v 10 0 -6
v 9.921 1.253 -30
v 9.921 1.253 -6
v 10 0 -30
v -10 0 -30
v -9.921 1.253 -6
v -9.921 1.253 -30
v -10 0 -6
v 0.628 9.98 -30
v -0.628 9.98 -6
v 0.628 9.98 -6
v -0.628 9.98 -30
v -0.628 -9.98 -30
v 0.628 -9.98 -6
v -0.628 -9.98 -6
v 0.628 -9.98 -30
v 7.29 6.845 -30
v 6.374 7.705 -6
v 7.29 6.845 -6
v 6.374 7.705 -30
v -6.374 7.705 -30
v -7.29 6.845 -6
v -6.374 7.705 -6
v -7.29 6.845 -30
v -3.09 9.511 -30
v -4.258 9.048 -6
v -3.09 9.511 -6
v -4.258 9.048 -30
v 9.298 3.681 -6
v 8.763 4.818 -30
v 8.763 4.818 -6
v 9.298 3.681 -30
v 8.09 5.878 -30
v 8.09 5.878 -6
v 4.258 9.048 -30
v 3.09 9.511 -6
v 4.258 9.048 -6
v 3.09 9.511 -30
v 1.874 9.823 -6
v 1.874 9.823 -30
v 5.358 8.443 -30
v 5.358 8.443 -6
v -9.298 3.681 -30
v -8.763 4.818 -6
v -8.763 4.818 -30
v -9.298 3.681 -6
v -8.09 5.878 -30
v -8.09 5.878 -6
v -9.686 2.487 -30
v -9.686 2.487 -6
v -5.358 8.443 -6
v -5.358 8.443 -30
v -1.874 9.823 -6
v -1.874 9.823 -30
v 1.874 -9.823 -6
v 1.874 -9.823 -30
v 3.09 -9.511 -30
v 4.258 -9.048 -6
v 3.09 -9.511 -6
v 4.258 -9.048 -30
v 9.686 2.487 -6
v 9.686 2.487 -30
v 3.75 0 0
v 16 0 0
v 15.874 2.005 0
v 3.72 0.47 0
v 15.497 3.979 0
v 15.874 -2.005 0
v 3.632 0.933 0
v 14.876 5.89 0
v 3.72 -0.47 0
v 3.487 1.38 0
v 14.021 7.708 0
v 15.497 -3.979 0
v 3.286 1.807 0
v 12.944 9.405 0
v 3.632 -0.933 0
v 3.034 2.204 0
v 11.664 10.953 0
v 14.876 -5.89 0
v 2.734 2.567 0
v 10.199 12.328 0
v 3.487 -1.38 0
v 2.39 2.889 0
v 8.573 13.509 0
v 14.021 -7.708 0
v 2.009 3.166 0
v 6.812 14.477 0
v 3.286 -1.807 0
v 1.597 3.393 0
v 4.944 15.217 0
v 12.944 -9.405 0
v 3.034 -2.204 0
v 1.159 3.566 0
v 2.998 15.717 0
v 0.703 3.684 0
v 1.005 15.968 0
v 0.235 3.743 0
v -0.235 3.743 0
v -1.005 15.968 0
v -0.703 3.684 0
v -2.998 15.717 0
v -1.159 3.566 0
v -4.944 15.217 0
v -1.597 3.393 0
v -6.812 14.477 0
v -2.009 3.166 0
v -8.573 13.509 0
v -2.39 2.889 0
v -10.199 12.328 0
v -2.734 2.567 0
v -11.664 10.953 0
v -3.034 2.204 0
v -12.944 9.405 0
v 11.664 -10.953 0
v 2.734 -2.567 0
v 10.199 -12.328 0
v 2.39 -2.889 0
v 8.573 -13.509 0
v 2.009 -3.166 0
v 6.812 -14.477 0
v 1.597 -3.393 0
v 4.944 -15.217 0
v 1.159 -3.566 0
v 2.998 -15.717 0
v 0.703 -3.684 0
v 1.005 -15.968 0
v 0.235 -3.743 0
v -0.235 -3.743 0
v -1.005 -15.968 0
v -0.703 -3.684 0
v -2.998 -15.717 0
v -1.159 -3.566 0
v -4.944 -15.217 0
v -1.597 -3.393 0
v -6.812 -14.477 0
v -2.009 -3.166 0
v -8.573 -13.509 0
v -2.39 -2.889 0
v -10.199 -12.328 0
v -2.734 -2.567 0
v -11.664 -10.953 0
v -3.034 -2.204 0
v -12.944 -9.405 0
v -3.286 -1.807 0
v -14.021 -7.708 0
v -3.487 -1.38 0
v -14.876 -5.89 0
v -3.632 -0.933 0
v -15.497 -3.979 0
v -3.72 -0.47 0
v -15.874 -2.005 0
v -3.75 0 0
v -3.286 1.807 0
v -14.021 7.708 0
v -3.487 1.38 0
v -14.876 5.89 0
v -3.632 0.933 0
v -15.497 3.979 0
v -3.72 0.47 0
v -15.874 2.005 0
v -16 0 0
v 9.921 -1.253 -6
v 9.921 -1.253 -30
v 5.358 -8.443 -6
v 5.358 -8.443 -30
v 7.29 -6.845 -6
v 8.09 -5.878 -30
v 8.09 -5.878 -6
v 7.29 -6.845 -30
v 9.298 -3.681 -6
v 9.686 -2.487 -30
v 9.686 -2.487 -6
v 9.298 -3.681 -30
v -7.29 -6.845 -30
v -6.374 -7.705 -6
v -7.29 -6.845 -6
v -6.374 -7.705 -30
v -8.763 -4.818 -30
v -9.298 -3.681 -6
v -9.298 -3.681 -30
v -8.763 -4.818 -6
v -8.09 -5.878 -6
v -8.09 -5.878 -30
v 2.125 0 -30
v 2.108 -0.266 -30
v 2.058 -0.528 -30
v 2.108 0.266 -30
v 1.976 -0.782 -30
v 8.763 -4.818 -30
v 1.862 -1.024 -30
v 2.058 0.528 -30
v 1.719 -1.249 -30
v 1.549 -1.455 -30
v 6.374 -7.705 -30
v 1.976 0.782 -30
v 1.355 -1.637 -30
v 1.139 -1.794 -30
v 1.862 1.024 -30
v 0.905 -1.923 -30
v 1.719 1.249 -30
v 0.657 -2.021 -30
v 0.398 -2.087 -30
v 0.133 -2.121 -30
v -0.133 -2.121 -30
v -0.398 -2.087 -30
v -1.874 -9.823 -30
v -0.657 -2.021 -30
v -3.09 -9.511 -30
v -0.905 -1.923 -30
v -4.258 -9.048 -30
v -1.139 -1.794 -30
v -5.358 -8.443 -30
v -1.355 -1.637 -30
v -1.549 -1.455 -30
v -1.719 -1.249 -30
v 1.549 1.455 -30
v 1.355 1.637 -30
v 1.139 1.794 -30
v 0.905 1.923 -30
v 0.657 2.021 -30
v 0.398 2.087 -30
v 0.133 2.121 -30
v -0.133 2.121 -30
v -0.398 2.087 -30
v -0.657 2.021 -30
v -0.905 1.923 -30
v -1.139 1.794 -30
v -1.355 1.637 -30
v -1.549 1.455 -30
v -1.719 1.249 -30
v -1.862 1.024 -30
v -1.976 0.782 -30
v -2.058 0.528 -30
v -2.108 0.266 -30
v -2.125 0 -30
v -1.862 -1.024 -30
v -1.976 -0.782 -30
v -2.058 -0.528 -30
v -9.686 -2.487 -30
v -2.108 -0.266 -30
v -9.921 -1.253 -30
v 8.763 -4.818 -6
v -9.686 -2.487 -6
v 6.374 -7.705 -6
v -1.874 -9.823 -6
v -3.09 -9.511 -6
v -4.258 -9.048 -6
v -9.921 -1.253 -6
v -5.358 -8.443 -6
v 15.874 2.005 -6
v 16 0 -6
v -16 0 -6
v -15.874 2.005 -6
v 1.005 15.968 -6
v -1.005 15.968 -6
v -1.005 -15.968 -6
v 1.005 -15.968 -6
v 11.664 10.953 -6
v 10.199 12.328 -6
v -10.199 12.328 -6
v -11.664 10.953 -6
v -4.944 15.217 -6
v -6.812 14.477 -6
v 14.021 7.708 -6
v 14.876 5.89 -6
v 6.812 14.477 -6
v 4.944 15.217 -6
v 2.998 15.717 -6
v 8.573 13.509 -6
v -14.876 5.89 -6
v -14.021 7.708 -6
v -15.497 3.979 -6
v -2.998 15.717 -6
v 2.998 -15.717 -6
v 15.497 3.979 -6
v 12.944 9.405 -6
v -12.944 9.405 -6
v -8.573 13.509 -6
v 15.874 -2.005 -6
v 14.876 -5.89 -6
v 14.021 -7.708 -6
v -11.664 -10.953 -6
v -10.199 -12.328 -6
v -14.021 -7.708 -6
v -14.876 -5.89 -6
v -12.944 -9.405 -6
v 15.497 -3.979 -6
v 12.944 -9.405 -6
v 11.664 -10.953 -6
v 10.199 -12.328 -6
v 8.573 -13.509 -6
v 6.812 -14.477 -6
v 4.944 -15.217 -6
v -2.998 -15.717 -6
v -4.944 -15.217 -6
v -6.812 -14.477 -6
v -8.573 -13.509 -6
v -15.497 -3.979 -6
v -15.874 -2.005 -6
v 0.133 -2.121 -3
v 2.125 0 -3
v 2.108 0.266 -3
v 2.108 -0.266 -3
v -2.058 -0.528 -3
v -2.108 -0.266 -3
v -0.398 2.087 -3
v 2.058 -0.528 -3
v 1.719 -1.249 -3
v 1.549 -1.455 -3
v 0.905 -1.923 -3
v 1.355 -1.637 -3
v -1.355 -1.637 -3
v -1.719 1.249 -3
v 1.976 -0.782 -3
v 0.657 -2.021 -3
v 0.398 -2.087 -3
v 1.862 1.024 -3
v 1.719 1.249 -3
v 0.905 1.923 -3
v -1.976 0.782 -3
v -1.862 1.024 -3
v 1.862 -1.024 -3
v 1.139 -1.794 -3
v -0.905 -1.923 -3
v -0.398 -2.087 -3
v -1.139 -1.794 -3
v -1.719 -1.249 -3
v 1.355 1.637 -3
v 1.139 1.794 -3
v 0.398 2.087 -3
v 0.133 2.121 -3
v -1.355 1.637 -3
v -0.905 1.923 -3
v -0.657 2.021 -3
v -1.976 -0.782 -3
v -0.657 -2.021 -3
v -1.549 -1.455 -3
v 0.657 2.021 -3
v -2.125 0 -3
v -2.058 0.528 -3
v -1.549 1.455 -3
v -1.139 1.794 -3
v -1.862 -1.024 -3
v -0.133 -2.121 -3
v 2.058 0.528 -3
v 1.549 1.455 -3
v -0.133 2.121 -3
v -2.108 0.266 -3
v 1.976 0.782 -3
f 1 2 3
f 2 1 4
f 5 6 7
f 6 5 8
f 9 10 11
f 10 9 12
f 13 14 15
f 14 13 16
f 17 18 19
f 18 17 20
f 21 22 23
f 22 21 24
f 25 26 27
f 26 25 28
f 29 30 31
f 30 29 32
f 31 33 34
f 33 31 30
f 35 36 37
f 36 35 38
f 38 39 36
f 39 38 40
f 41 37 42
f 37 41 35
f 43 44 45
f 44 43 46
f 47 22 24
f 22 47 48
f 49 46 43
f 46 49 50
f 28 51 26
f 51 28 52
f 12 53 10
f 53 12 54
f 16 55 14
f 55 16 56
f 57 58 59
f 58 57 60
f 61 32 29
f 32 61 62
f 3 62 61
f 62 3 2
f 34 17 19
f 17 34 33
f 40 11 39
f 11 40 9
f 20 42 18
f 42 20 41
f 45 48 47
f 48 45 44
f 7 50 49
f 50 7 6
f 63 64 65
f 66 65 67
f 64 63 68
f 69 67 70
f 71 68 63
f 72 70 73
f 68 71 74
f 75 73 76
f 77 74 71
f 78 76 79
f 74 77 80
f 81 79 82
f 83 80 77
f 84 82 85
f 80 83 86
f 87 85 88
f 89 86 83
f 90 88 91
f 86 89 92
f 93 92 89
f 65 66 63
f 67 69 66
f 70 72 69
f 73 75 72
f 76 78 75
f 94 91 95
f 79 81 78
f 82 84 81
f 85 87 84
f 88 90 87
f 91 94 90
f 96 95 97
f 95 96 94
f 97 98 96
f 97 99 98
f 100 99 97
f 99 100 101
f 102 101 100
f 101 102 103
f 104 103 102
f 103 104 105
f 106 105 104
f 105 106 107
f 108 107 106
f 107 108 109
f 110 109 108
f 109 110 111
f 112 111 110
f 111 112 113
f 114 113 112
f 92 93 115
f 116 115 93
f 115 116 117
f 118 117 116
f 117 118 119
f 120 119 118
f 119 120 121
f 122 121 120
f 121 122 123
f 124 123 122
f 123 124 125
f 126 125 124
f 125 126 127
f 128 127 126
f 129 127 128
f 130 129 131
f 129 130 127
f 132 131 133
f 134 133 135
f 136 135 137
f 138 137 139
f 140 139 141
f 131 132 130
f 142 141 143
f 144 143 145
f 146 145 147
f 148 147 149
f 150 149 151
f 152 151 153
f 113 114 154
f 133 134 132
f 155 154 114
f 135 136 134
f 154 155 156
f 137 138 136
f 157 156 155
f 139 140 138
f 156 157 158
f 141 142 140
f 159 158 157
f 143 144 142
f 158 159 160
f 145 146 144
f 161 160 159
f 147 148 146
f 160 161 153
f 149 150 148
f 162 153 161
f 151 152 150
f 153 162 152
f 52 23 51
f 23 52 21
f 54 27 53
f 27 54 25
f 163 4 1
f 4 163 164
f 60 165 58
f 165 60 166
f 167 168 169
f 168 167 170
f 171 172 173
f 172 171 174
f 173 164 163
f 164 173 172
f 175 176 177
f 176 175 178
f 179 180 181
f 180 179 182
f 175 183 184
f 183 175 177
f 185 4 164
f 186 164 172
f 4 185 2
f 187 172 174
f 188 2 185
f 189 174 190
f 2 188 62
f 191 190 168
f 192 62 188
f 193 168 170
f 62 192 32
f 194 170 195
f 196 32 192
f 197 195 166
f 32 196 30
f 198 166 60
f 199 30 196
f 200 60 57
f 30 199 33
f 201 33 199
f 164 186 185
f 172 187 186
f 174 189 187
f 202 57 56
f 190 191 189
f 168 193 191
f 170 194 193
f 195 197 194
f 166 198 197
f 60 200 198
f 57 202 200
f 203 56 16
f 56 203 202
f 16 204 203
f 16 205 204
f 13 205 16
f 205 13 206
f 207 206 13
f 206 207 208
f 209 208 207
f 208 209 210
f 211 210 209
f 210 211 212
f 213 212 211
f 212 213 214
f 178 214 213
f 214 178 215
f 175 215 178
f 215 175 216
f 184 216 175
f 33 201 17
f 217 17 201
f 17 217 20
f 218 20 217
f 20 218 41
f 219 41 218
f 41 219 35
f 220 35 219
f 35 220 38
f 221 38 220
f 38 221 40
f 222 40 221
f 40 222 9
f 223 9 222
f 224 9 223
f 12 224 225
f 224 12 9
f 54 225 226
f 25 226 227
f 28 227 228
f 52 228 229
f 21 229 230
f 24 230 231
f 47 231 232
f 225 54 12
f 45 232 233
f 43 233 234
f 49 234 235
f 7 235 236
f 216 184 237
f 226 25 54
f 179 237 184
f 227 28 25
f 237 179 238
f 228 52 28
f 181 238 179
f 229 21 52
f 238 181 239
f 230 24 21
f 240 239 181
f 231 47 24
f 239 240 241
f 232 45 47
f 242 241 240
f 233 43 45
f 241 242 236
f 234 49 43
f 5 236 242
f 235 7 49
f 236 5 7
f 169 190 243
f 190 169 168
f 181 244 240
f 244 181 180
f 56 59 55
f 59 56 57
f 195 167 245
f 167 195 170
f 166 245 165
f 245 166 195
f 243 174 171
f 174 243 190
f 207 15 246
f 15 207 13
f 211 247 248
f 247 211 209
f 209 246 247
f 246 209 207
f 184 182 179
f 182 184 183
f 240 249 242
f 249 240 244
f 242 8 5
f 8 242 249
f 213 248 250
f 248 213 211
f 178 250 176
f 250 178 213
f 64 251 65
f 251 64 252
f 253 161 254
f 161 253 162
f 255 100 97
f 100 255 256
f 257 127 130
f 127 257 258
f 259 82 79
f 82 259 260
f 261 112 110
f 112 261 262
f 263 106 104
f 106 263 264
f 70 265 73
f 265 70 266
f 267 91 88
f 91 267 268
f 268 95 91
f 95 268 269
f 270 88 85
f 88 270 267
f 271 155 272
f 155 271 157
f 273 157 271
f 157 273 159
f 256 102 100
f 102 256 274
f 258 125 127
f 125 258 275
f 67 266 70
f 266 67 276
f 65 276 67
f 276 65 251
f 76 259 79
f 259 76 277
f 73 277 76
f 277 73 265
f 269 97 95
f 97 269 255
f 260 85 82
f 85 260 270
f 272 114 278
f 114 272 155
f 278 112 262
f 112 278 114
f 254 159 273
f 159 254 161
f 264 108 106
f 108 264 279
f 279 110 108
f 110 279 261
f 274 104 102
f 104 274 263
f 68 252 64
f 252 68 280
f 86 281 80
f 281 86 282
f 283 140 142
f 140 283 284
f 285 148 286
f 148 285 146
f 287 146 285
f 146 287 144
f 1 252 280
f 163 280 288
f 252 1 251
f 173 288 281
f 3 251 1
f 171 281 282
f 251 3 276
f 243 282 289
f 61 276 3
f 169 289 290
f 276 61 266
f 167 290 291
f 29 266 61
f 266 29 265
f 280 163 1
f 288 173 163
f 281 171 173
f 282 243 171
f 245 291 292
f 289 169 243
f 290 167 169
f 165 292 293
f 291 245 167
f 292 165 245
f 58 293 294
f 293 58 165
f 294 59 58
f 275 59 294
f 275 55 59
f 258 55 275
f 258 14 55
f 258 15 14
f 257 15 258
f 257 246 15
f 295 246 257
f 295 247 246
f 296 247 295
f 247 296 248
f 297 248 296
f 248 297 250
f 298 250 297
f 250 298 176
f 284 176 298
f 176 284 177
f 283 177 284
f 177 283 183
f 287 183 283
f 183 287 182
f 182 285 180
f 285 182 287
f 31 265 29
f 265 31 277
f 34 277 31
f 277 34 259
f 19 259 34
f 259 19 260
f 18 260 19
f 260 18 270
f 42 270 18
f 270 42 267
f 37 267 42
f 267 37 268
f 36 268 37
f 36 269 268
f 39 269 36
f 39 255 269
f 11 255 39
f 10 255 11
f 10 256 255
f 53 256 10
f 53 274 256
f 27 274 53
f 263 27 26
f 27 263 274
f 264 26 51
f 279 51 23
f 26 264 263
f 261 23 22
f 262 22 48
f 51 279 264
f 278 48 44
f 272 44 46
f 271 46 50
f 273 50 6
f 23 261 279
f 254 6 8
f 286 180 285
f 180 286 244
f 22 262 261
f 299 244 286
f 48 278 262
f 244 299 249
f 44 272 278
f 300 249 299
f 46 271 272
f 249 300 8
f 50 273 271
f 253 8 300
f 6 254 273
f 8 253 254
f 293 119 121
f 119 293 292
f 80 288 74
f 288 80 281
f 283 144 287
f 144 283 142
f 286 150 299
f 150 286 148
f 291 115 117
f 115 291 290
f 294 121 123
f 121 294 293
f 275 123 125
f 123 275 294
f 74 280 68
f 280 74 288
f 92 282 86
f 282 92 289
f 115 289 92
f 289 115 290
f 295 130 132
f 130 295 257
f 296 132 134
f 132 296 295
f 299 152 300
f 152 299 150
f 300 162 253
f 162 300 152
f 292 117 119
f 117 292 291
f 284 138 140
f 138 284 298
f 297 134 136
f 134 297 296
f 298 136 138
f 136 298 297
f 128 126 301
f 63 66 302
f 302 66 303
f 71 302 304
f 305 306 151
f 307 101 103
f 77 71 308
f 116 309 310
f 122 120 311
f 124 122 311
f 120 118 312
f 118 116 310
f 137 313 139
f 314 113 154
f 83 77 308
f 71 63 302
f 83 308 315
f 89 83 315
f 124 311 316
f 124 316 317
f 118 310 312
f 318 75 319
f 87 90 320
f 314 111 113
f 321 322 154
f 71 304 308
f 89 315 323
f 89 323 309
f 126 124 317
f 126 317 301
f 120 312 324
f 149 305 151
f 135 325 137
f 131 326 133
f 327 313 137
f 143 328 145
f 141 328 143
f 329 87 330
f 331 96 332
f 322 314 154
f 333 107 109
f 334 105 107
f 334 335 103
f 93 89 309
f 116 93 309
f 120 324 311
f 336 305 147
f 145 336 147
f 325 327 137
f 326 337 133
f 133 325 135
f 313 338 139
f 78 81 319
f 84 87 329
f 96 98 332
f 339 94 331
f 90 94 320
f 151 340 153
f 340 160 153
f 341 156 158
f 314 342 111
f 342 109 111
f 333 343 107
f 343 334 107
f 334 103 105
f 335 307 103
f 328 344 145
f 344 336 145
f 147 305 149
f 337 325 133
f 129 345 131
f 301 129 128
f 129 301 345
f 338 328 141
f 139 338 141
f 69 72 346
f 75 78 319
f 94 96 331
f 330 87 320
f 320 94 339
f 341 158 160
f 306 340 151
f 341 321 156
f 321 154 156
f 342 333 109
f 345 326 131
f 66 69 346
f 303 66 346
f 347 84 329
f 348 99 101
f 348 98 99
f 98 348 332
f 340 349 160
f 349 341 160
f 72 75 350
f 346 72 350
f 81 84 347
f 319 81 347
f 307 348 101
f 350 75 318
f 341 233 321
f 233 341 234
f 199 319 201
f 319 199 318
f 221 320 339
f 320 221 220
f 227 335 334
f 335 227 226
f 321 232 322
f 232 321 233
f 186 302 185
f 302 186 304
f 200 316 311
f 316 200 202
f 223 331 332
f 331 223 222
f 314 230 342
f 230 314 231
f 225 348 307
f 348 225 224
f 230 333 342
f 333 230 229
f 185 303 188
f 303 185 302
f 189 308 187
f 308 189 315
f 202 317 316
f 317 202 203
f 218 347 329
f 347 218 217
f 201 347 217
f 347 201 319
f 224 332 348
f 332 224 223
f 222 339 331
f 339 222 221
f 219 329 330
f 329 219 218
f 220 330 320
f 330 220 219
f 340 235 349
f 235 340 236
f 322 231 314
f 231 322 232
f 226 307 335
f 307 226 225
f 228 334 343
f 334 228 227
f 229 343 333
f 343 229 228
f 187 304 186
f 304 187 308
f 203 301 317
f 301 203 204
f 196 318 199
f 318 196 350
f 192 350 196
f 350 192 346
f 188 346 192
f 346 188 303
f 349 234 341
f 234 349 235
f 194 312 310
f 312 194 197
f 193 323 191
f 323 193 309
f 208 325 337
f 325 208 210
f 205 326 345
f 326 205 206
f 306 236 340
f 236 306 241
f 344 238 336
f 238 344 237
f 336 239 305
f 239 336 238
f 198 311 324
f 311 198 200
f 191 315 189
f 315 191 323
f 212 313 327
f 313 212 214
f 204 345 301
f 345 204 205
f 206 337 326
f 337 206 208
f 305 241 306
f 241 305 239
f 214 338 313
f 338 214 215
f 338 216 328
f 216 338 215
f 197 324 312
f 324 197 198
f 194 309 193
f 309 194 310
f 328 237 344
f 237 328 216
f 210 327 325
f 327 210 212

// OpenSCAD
$fn = 50;


difference() {
	union() {
		translate(v = [0, 0, -30.0000000000]) {
			cylinder(h = 30, r = 10.0000000000);
		}
		translate(v = [0, 0, -6.0000000000]) {
			cylinder(h = 6, r = 16.0000000000);
		}
	}
	union() {
		translate(v = [0, 0, 0]) {
			rotate(a = [0, 0, 0]) {
				difference() {
					union() {
						#translate(v = [0, 0, -30.0000000000]) {
							cylinder(h = 30, r = 2.0000000000);
						}
						#translate(v = [0, 0, -3]) {
							cylinder(h = 3, r1 = 2.1250000000, r2 = 3.7500000000);
						}
						#translate(v = [0, 0, -30.0000000000]) {
							cylinder(h = 30, r = 2.1250000000);
						}
						#translate(v = [0, 0, -30.0000000000]) {
							cylinder(h = 30, r = 2.0000000000);
						}
					}
					union();
				}
			}
		}
	}
}
